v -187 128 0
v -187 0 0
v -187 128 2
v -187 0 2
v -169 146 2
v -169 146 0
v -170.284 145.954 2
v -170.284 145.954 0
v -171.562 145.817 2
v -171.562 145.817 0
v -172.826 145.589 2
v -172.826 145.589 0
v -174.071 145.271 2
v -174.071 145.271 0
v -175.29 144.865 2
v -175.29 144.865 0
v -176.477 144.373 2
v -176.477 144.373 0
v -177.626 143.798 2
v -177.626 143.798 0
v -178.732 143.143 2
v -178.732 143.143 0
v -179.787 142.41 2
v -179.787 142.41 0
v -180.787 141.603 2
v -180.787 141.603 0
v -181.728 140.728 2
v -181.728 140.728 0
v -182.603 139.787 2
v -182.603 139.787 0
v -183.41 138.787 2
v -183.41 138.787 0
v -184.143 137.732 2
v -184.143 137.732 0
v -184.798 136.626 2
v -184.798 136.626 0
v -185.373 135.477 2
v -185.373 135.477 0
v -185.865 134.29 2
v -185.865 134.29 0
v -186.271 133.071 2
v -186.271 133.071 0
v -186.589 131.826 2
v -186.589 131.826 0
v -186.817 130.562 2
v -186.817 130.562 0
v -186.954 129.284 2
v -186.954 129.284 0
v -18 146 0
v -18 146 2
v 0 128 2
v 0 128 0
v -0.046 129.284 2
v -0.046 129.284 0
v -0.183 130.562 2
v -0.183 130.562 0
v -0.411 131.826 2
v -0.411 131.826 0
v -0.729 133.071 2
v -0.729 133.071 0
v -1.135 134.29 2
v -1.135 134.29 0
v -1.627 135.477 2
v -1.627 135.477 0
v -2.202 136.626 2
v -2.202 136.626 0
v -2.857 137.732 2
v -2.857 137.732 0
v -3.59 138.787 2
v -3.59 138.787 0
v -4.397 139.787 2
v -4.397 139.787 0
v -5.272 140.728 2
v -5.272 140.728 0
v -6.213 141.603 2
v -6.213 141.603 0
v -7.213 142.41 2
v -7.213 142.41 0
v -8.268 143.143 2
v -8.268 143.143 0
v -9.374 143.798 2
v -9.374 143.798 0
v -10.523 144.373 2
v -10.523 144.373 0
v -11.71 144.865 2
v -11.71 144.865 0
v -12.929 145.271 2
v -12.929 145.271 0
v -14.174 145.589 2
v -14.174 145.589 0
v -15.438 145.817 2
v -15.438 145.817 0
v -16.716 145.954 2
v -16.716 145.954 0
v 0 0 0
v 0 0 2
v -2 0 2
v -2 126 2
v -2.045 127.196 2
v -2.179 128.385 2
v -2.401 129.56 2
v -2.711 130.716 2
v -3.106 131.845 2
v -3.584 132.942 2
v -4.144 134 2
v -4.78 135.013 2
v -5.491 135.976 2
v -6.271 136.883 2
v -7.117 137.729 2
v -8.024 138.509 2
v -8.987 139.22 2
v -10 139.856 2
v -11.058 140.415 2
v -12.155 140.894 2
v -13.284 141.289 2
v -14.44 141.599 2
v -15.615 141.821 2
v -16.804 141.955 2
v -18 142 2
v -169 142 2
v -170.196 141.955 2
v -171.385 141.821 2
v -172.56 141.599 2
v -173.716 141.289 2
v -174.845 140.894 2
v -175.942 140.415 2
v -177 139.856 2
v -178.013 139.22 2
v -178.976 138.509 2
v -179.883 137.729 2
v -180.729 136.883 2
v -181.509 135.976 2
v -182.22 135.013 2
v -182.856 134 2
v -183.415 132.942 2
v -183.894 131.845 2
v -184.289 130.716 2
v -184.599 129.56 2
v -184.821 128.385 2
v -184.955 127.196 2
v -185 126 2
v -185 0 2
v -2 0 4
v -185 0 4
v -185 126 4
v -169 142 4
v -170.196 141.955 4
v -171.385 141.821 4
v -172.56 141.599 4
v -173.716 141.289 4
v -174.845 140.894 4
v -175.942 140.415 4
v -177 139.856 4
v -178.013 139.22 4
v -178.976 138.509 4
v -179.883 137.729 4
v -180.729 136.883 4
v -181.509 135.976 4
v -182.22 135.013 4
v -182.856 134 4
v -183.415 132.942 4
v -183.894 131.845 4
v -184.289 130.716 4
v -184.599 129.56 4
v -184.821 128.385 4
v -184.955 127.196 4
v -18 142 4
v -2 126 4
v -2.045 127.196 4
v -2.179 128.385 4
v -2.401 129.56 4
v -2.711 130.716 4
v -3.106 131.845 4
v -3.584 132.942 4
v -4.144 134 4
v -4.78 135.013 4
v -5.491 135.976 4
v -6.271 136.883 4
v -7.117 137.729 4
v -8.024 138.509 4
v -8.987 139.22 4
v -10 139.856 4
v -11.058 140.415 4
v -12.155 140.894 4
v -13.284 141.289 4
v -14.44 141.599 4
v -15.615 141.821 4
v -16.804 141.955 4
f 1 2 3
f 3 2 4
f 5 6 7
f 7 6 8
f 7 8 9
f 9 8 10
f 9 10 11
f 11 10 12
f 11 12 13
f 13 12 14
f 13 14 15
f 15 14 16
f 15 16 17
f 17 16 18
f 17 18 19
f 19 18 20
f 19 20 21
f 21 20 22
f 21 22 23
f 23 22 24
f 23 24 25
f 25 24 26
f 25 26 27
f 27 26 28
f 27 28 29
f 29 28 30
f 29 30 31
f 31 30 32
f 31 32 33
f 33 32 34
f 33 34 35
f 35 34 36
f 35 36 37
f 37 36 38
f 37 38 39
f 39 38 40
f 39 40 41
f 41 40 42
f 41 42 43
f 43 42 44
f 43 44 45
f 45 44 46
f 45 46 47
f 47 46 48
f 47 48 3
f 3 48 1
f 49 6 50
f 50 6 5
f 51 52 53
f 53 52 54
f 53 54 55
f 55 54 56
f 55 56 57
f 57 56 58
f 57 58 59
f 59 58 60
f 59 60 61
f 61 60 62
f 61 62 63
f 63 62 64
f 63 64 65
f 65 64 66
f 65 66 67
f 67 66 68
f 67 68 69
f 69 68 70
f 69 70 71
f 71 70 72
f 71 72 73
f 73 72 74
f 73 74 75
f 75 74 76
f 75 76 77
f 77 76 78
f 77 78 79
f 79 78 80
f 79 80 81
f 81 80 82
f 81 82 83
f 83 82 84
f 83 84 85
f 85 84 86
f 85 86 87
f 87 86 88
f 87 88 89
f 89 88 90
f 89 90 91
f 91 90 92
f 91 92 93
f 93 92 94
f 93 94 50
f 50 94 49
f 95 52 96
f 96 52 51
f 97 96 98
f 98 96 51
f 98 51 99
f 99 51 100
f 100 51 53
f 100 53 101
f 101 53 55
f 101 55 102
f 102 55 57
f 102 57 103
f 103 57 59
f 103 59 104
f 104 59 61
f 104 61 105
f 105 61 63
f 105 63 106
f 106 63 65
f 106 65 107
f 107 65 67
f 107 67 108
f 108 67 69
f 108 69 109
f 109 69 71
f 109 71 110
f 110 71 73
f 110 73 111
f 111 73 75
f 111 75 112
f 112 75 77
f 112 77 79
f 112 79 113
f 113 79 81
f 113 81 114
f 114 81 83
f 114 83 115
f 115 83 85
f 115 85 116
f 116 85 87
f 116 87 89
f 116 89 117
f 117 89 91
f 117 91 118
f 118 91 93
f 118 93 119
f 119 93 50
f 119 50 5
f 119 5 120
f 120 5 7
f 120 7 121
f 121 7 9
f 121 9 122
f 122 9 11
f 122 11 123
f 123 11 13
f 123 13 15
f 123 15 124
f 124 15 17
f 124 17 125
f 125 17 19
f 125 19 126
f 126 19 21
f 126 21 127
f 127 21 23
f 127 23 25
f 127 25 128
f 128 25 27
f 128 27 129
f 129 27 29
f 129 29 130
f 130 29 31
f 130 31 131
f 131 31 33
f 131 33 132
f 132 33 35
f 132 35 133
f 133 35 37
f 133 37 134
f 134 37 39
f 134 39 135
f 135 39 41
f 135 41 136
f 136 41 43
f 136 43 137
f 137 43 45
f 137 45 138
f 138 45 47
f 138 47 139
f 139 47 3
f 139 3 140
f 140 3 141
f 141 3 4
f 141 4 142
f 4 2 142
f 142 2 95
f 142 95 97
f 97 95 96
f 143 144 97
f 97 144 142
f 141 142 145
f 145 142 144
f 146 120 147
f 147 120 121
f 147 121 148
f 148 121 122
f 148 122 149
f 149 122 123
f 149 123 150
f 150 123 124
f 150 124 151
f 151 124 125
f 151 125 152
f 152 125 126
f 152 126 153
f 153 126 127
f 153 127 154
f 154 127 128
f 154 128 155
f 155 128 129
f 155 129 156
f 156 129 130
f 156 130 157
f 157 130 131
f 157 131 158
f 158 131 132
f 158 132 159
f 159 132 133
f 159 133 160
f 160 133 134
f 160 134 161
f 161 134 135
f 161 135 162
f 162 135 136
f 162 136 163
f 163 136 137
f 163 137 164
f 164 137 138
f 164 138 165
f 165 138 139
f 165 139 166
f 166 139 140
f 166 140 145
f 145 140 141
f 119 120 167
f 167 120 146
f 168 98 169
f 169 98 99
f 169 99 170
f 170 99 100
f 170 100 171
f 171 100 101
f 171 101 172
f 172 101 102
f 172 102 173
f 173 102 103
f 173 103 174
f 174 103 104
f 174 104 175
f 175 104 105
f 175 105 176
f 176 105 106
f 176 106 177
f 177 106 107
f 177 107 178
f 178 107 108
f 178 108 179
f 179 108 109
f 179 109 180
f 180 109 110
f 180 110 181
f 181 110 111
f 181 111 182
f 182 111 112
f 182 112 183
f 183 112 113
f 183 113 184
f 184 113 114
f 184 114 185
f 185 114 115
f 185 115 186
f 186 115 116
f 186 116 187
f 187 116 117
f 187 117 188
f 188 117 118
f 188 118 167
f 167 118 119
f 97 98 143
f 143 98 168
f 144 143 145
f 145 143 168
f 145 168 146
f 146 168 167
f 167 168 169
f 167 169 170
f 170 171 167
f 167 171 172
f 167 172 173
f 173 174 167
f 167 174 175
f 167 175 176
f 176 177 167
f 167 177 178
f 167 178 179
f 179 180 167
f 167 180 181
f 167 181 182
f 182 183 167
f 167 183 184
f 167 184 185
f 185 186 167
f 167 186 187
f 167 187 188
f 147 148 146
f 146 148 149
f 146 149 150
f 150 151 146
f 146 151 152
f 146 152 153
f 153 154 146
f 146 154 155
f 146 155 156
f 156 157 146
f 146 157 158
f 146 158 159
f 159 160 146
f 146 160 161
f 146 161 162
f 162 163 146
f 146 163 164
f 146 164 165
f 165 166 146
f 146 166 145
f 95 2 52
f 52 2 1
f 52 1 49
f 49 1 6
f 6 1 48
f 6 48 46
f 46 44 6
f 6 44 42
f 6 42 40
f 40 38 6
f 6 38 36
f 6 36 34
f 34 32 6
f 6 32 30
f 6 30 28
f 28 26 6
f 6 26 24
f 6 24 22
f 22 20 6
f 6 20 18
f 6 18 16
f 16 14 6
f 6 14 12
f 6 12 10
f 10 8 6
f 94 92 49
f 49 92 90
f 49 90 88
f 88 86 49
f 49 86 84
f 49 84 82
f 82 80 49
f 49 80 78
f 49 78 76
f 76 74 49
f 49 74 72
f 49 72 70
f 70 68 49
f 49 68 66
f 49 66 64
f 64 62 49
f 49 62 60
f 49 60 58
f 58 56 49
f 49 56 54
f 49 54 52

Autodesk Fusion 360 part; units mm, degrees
sketch "Sketch1" plane through (0, 0, 0) normal (0, 0, 1) x (1, 0, 0)
  line L0 (0, 0) -> (-187, 0)
  line L1 (-187, 0) -> (-187, 128)
  line L2 (-169, 146) -> (-18, 146)
  line L3 (0, 128) -> (0, 0)
  arc A0 (0, 128) -> (-18, 146) centre (-18, 128) ccw
  arc A1 (-169, 146) -> (-187, 128) centre (-169, 128) ccw
  line L4 (-185, 2) -> (-185, 126)
  line L5 (-2, 126) -> (-2, 2)
  line L6 (-185, 2) -> (-185, 0)
  line L7 (-2, 2) -> (-2, 0)
  line L8 (-169, 142) -> (-18, 142)
  arc A2 (-169, 142) -> (-185, 126) centre (-169, 126) ccw
  arc A3 (-2, 126) -> (-18, 142) centre (-18, 126) ccw
  point P0 (0, 146)
  dimension "d1" = 187
  dimension "d2" = 146
  dimension "d3" = 18
  dimension "d4" = 18
extrude "Extrude1" add sketch "Sketch1" along normal blind 4 contours L0 L4 L5 L6 L7 L8 A2 A3
extrude "Extrude2" add sketch "Sketch1" along normal blind 2 contours L0 L1 L2 L3 A0 A1 L4 L5 L6 L7 L8 A2 A3
